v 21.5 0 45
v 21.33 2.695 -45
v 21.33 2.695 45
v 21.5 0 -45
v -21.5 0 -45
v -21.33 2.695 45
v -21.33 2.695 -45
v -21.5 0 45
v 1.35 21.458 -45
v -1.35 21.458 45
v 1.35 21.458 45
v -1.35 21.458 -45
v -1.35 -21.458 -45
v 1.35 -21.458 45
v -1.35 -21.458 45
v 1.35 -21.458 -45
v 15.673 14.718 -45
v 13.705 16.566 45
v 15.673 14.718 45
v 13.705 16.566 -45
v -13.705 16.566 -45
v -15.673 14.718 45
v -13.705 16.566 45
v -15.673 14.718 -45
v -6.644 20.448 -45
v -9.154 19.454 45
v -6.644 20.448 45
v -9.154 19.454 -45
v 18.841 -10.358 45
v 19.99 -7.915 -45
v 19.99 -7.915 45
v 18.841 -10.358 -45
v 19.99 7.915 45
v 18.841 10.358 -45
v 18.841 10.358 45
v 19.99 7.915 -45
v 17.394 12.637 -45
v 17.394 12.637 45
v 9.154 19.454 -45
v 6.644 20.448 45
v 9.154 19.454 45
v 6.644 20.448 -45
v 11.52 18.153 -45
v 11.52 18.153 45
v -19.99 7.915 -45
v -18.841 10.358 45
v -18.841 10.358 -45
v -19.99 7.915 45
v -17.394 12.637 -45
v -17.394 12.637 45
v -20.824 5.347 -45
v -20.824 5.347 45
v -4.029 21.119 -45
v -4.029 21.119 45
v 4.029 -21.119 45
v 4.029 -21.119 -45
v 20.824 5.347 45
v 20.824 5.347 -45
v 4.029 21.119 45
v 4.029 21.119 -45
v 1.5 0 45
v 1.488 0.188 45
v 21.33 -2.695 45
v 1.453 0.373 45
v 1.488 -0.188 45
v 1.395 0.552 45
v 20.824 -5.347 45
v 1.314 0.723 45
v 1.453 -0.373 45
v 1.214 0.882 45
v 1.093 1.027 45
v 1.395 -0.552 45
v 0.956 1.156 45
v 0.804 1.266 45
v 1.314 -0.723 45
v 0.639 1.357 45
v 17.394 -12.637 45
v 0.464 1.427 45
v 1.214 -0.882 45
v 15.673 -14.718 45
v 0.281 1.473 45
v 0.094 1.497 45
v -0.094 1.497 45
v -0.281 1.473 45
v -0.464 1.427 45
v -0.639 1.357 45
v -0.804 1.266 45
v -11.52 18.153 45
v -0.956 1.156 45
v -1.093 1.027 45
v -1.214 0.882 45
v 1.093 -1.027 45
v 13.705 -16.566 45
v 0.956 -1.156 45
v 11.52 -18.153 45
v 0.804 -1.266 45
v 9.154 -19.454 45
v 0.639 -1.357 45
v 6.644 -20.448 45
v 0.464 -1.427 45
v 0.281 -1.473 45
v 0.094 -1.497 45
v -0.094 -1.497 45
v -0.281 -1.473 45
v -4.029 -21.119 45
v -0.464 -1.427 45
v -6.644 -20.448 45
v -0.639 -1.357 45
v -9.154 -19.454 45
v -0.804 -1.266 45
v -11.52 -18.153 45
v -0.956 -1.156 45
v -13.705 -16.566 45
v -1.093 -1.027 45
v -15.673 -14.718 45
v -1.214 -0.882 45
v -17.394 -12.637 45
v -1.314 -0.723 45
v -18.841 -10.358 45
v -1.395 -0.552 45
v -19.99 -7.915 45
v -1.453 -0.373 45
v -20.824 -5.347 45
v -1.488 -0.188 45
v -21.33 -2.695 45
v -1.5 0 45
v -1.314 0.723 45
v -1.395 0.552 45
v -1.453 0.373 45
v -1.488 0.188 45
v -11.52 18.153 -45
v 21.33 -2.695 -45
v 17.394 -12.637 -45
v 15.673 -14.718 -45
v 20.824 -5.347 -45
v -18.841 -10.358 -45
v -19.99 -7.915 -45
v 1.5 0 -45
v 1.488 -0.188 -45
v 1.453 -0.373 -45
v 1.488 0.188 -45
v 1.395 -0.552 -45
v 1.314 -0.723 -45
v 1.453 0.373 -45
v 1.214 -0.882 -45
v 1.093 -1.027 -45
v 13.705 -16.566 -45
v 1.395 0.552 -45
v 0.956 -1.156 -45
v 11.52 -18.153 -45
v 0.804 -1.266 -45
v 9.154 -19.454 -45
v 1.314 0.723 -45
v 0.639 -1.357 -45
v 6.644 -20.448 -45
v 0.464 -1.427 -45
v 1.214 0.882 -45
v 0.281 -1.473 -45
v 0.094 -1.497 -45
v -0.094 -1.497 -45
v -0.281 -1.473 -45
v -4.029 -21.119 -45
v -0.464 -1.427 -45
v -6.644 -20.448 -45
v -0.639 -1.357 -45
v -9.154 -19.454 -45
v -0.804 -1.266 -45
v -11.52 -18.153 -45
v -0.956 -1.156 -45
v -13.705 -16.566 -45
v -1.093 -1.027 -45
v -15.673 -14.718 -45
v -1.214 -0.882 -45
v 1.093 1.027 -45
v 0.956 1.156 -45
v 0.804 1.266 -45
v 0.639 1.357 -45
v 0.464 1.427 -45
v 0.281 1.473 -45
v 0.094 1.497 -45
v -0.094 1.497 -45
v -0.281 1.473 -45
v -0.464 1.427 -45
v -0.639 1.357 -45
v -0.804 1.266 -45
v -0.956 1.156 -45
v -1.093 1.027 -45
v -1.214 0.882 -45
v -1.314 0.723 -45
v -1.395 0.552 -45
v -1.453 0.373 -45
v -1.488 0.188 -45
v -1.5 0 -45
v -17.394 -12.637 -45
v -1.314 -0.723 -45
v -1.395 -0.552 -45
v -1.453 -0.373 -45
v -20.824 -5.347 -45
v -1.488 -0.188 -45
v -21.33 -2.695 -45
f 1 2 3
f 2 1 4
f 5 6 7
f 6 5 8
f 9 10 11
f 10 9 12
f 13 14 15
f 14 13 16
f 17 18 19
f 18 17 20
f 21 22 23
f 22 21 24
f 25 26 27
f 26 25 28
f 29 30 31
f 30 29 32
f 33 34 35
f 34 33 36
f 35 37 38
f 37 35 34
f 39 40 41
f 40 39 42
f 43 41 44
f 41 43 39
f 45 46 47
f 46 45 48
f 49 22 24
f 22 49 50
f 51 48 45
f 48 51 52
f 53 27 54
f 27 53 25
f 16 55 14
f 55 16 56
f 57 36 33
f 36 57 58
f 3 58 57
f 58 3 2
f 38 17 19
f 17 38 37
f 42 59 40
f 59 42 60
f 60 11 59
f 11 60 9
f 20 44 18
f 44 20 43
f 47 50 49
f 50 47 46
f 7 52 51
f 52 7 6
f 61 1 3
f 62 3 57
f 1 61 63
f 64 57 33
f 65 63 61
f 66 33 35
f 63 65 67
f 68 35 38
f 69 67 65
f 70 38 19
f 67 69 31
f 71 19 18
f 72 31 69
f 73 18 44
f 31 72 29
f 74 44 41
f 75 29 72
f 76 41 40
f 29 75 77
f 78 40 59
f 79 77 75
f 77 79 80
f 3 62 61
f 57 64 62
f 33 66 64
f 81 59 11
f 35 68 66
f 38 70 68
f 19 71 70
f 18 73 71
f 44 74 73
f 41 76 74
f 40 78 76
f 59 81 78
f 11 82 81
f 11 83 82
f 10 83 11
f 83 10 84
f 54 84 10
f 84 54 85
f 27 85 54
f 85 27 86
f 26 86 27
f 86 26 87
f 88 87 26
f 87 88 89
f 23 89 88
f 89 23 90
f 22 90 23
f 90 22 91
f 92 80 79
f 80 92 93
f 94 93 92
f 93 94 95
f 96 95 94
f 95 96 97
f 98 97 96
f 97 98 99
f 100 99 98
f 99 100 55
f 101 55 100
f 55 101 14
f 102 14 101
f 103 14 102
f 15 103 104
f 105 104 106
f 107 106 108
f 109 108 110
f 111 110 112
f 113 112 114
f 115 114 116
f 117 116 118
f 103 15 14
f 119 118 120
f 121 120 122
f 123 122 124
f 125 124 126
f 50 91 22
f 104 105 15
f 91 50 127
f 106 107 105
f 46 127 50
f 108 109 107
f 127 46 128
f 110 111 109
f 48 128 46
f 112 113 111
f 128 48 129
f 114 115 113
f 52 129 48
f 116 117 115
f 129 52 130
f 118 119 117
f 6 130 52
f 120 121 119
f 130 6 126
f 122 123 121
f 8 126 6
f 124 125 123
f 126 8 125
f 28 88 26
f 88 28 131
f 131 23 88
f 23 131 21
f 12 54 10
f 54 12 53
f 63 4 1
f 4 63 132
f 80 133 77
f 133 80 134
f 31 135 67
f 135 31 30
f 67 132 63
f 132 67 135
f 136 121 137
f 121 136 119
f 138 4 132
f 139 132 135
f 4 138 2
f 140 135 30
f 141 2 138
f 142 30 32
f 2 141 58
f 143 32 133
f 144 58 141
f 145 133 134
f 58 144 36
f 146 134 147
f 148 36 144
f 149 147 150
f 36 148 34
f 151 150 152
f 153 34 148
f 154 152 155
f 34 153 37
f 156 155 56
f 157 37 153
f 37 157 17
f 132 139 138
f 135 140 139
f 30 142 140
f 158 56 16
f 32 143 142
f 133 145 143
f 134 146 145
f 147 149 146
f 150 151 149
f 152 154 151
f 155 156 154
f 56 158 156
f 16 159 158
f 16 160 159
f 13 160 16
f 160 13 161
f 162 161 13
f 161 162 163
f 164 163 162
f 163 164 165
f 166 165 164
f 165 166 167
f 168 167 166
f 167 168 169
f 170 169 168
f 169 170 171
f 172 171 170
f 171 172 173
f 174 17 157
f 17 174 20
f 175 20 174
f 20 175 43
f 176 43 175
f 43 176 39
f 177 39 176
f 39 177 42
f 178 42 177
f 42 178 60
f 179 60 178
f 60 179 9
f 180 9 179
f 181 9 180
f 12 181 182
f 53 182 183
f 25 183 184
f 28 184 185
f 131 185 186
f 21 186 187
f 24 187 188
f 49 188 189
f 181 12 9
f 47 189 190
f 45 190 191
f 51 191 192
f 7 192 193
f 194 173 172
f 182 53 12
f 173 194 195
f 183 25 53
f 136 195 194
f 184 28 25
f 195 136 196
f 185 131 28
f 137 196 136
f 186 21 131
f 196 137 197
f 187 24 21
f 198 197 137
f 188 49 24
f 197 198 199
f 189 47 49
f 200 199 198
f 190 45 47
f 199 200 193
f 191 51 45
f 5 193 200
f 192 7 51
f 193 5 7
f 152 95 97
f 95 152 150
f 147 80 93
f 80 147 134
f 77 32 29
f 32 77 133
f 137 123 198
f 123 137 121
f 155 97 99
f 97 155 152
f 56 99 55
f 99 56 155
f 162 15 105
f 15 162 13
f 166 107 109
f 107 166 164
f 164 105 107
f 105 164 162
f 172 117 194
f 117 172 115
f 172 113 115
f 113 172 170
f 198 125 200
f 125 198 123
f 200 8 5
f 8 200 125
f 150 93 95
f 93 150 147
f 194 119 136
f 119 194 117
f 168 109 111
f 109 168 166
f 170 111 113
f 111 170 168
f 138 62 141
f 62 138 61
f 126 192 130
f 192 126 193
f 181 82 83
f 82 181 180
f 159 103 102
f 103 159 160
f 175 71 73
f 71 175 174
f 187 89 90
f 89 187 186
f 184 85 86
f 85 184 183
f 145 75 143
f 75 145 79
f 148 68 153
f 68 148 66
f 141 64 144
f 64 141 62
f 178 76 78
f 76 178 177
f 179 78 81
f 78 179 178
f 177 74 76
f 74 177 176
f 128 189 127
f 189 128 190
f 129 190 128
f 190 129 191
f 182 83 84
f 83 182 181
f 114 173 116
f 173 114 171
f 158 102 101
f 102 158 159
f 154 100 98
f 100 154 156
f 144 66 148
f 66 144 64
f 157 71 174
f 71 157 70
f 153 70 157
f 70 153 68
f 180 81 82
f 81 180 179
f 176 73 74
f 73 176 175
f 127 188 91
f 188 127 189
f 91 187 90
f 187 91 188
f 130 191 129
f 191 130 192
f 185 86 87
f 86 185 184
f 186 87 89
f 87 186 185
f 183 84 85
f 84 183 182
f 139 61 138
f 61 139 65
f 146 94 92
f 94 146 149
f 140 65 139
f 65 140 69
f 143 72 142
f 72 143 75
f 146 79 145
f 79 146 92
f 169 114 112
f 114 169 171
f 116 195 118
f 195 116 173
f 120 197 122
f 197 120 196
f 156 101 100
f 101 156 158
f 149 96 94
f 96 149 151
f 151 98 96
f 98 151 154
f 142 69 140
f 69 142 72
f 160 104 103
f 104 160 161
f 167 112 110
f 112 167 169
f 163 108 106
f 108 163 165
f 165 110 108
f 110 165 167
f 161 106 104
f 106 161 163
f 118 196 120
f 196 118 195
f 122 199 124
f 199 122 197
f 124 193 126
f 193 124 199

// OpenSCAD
$fn = 50;


difference() {
	union() {
		translate(v = [0, 0, -45.0000000000]) {
			cylinder(h = 90, r = 21.5000000000);
		}
	}
	union() {
		translate(v = [0, 0, -100.0000000000]) {
			cylinder(h = 200, r = 1.5000000000);
		}
	}
}
